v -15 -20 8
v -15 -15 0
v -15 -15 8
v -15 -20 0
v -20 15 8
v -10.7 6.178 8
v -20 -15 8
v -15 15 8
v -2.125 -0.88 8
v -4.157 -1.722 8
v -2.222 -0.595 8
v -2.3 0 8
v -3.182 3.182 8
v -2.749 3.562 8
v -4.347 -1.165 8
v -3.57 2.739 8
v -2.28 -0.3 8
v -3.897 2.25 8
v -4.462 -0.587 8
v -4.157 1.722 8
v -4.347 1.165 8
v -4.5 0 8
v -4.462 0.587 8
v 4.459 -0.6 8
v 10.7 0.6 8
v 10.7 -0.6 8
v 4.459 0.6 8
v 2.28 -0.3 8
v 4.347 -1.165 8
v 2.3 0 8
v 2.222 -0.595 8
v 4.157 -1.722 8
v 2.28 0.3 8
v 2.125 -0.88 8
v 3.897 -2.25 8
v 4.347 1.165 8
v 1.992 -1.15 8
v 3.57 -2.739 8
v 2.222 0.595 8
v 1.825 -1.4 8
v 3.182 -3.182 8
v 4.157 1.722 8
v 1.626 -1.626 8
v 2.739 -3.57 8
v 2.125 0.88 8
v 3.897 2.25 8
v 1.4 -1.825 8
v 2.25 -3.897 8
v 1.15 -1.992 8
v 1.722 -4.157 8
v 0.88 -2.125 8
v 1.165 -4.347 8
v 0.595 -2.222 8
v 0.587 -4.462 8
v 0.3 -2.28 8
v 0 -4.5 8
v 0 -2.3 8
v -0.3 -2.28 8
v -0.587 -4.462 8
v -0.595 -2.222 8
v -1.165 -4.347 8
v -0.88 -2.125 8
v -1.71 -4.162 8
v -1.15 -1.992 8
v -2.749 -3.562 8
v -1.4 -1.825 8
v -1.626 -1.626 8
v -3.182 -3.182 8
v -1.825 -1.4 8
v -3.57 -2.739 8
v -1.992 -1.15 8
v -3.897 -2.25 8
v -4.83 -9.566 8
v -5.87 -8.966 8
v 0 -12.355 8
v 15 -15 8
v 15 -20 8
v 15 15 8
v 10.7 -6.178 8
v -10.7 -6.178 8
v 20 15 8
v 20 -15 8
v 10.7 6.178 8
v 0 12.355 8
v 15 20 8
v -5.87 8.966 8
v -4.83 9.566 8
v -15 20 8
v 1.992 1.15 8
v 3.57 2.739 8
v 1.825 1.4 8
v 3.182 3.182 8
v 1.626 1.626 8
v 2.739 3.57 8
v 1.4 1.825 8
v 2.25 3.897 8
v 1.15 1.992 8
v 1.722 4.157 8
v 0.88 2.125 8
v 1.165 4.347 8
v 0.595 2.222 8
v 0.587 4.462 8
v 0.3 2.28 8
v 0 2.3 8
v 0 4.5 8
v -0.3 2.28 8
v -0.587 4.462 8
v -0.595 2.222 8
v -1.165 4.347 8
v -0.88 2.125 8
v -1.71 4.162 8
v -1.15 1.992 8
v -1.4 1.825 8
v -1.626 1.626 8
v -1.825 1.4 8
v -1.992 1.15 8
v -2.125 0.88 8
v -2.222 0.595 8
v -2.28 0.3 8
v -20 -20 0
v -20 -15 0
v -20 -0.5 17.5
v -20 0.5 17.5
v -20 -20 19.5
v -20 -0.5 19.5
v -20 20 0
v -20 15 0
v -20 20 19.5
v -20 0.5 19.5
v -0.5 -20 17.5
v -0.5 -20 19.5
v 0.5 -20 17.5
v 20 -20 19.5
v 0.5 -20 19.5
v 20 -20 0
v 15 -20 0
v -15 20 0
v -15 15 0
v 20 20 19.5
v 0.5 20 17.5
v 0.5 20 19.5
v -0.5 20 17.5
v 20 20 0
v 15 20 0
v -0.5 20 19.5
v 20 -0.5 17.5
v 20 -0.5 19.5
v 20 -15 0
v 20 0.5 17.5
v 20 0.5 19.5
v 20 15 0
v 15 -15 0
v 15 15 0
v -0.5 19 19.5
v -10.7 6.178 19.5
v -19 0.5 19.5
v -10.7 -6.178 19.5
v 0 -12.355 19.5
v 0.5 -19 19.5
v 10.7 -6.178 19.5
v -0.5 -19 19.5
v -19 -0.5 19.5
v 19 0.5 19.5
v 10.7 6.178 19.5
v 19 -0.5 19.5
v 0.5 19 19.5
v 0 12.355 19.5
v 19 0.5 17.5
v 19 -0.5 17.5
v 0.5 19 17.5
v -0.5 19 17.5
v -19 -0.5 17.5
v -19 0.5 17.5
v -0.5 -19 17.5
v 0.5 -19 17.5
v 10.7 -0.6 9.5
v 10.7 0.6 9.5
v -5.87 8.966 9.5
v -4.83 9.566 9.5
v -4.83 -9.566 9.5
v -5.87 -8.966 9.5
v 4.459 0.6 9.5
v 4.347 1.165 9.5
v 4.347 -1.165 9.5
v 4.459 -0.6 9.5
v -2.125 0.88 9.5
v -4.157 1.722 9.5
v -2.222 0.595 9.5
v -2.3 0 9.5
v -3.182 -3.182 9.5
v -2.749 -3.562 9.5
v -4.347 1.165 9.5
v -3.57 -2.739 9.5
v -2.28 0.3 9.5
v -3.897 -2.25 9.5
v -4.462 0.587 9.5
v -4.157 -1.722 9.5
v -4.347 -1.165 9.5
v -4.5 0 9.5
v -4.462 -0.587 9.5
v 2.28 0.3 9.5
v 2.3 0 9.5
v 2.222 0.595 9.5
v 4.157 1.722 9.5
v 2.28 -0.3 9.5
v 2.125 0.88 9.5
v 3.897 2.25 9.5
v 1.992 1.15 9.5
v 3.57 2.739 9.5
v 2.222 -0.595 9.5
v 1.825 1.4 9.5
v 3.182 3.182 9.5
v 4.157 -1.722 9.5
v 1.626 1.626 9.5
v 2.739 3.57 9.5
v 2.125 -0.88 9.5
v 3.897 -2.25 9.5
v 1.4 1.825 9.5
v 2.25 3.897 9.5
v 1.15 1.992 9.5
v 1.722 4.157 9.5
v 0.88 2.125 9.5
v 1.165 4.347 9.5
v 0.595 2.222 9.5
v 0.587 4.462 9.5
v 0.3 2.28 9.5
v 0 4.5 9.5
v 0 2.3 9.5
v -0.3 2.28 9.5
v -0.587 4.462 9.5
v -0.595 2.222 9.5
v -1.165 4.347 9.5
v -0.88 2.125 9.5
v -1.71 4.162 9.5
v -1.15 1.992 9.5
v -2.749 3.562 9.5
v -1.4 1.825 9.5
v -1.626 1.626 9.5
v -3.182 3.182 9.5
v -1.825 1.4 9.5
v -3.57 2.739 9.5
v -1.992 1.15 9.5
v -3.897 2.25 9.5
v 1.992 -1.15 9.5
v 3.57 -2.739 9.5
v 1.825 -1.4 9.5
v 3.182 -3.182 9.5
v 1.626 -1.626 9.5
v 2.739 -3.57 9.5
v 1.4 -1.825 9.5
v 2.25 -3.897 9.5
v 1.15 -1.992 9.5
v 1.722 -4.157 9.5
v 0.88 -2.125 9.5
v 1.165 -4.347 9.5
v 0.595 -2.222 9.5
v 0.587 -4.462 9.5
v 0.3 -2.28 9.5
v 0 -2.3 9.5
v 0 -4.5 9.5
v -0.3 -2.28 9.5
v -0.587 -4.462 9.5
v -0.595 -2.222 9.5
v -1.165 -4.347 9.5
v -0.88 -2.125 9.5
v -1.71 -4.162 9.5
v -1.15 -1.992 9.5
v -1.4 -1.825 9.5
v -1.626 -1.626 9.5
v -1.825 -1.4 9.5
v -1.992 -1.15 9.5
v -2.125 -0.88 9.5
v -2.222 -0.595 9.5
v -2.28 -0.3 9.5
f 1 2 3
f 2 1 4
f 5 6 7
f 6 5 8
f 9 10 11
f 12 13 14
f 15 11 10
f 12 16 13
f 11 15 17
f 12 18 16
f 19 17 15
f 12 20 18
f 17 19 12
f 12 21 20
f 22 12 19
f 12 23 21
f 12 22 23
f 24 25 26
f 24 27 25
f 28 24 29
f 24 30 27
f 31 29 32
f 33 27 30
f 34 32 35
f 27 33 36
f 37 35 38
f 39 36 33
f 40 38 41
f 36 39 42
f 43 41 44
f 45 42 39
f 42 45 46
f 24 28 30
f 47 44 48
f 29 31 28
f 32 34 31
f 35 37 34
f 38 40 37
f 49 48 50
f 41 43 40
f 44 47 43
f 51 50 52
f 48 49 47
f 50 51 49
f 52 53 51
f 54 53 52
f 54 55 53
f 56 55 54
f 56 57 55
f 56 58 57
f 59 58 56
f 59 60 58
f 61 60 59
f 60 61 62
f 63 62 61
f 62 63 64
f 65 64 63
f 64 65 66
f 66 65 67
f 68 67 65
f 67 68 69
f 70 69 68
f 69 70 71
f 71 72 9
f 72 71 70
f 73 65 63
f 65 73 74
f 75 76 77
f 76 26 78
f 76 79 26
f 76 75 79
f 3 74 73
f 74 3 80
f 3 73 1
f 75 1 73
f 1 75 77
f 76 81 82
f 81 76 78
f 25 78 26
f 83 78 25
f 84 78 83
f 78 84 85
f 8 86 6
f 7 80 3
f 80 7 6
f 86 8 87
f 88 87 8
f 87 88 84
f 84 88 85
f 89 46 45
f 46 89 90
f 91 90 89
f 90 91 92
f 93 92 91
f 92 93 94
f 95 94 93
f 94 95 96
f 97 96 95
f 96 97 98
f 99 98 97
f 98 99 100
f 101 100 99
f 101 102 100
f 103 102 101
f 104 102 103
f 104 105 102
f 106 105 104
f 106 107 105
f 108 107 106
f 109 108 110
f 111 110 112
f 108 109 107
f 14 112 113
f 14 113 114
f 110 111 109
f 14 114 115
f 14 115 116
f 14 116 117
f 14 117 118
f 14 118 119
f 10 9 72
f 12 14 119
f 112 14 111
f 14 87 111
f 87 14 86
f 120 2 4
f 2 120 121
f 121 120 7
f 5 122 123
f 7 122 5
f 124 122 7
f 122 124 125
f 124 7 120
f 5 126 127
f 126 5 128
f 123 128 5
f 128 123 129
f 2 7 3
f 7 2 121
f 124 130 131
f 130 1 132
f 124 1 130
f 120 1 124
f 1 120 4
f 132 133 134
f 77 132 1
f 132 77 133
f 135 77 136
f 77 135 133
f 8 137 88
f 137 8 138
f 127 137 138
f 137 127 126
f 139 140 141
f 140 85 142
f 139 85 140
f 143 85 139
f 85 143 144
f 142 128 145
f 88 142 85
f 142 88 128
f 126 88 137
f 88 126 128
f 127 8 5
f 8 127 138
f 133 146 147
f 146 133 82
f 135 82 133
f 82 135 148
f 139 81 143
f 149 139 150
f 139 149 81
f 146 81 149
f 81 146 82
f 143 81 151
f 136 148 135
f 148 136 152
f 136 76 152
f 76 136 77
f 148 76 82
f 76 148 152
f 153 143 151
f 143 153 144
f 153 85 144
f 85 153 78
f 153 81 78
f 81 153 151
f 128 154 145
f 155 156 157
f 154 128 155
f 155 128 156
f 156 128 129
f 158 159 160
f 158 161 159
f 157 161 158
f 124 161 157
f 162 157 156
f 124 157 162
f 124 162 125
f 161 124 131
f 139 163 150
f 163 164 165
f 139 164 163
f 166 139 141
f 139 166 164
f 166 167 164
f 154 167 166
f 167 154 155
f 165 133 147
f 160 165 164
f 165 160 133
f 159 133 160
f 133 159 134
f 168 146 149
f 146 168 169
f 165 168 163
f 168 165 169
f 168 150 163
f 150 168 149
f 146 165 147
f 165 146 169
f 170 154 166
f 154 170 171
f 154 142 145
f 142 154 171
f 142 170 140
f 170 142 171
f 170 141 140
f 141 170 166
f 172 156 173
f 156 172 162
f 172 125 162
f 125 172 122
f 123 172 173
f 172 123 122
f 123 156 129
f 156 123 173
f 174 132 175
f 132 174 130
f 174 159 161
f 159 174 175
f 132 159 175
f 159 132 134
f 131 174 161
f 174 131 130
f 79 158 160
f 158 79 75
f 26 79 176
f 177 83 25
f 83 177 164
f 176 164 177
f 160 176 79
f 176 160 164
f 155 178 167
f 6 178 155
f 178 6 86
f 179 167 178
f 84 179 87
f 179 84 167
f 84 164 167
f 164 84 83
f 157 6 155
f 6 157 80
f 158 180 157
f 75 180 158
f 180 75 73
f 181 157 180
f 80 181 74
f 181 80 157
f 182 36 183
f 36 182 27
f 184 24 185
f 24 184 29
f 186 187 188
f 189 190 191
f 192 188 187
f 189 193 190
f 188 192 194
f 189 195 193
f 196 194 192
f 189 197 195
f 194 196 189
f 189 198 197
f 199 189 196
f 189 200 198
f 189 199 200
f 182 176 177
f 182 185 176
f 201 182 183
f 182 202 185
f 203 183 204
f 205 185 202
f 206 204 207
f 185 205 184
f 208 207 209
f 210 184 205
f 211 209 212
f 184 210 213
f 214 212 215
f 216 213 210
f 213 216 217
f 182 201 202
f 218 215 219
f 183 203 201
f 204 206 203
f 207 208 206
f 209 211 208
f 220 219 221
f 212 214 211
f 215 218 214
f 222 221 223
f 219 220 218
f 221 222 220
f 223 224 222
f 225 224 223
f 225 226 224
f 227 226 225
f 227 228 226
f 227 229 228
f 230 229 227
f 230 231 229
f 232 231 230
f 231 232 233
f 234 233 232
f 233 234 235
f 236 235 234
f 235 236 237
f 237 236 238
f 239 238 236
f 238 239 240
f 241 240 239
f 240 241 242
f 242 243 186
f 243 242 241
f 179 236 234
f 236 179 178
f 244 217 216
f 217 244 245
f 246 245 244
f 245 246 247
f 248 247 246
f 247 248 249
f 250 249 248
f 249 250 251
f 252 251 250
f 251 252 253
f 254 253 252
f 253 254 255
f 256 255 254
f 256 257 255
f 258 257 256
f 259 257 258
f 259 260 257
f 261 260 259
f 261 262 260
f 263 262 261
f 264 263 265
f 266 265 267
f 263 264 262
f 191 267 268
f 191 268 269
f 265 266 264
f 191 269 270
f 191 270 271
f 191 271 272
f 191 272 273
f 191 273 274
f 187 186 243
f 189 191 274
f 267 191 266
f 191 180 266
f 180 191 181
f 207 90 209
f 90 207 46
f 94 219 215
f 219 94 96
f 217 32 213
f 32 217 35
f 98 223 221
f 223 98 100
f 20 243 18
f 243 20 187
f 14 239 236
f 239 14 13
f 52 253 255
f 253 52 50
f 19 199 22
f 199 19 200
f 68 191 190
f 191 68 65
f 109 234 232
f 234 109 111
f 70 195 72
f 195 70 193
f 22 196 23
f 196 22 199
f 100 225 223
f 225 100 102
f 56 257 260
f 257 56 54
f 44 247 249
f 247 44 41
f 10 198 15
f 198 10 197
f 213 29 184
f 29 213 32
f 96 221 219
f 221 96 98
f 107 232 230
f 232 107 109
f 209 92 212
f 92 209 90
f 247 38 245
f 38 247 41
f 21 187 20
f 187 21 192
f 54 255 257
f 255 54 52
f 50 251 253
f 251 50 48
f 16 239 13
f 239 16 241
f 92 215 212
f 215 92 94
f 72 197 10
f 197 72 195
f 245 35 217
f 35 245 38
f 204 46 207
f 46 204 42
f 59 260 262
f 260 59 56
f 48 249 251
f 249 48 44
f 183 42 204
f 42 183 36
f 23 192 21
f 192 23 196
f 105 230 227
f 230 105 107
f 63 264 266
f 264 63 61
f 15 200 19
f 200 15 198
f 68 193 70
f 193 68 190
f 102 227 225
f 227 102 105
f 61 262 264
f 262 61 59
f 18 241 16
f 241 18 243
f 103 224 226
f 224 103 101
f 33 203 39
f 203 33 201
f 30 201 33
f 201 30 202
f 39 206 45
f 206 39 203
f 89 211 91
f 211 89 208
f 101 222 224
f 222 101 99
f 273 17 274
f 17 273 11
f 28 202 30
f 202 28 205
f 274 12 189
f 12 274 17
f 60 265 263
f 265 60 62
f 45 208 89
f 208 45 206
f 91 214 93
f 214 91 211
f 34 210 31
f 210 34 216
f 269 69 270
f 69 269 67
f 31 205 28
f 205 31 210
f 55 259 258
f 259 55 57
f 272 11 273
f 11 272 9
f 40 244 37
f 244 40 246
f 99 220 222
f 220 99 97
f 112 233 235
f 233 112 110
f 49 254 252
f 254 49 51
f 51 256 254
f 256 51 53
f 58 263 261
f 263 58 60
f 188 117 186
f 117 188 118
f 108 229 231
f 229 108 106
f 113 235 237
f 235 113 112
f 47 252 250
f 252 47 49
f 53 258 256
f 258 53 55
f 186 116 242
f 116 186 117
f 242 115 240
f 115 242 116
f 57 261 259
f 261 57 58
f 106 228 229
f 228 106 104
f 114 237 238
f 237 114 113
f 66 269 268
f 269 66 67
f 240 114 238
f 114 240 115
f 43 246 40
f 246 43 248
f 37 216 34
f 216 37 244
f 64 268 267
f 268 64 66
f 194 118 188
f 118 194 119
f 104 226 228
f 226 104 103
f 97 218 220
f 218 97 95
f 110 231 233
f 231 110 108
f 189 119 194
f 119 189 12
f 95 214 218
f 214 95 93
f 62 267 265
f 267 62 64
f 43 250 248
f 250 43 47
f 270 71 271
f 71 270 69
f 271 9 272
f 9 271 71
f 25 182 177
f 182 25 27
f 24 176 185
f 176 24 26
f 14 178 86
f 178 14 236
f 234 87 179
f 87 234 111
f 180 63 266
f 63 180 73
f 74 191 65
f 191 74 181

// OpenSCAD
// file: common.scad
// Hexboard overlay — shared dimensions and part modules.
// All values hardcoded in mm. z = 0 is the iPad glass. Hexes are pointy-top (a vertex points along +Y),
// matching the app's key grid (app/js/geometry.js).

$fn = 48;

// ---------- grid ----------
PITCH   = 24.15;                 // key centre-to-centre
ROW     = PITCH * sqrt(3) / 2;   // 20.914 between rows

// ---------- cap (translucent PETG) ----------
CAP_FLAT   = 21.0;   // outer flat-to-flat
CAP_H      = 9.0;
CAP_WALL   = 1.2;
CAP_TOP    = 1.6;    // top thickness
CAP_HOLE   = 4.3;    // stem through-hole
CB_D       = 8.4;    // counterbore for plunger head
CB_DEPTH   = 1.2;

// ---------- plunger (conductive PLA) ----------
HEAD_D     = 8.0;
HEAD_H     = 1.2;
STEM_D     = 4.0;
STEM_L     = 14.3;   // below the head

// ---------- tip cup (conductive PLA) + conductive foam ----------
CUP_D      = 7.5;
CUP_H      = 4.5;
SOCKET_D   = 4.05;   // press fit on the stem
SOCKET_DEPTH = 2.0;
POCKET_D   = 6.2;    // holds a 6 mm conductive foam disc
POCKET_DEPTH = 2.0;
FOAM_PROTRUDE = 1.5; // foam below the cup (foam disc 6 x 3.5 mm)

// ---------- vertical stack (rest position) ----------
REST_GAP     = 2.0;                                  // foam to glass at rest
CUP_TOP_Z    = REST_GAP + FOAM_PROTRUDE + CUP_H;     // 8.0: cup stops under the spider
SPIDER_Z     = CUP_TOP_Z;                            // spider bottom = plate bottom
SPIDER_T     = 1.5;
TRAVEL_STOP  = 3.0;                                  // cap bottom to spider at rest
CAP_BOTTOM_Z = SPIDER_Z + SPIDER_T + TRAVEL_STOP;    // 12.5
CAP_TOP_Z    = CAP_BOTTOM_Z + CAP_H;                 // 21.5
PLATE_TOP_Z  = CAP_TOP_Z - 2.0;                      // 19.5: caps stand 2 mm proud
// Pressed to the stop: foam is 1 mm into the glass (compressed), which is the pressure range.

// ---------- bore + spider (part of each housing) ----------
BORE_FLAT    = 21.4;  // 0.2 mm clearance per side
SPIDER_RING_ID = 4.6; // stem slides through
SPIDER_RING_OD = 9.0; // spring seat (spring: 0.5 mm wire, 7 mm OD, ~15 mm free length)
SPOKE_W      = 1.2;

// ---------- iPad Air 4 (A2316) ----------
IPAD_W   = 247.6;
IPAD_H   = 178.5;
IPAD_T   = 6.1;
IPAD_R   = 18.0;     // corner radius (approximate: measure yours)
SCREEN_W = 227.06;   // 2360 px / 264 ppi
SCREEN_H = 157.79;   // 1640 px / 264 ppi
STRIP    = 18.0;     // uncovered control strip along the top edge of the screen
// Key grid centre relative to screen centre (y up): matches app geometry.
GRID_Y   = -(SCREEN_H + STRIP) / 2 + SCREEN_H / 2;   // -9.0

// ---------- helpers ----------
module hex(flat, h) { rotate([0, 0, 30]) cylinder(r = flat / sqrt(3), h = h, $fn = 6); }

// Key centres for the 51-key grid: 6 rows of 9 / 8 keys, row 0 nearest the player.
function key_q(r, j) = (r % 2 == 1) ? j - 3.5 : j - 4;
function key_pos(r, j) = [key_q(r, j) * PITCH, GRID_Y + (r - 2.5) * ROW];

// ---------- parts ----------
// Cap: hollow hex, open at the bottom. Print top-down (top face on the bed).
module cap() {
  difference() {
    hex(CAP_FLAT, CAP_H);
    translate([0, 0, -0.01]) hex(CAP_FLAT - 2 * CAP_WALL, CAP_H - CAP_TOP);
    translate([0, 0, -1]) cylinder(d = CAP_HOLE, h = CAP_H + 2);
    translate([0, 0, CAP_H - CB_DEPTH]) cylinder(d = CB_D, h = CB_DEPTH + 1);
    // soft top edge
    translate([0, 0, CAP_H - 0.8])
      difference() { hex(CAP_FLAT + 2, 2); hex_chamfer(); }
  }
}
module hex_chamfer() {
  rotate([0, 0, 30]) cylinder(r1 = CAP_FLAT / sqrt(3), r2 = (CAP_FLAT - 1.6) / sqrt(3), h = 0.8, $fn = 6);
}

// Plunger: head sits flush in the cap's counterbore; stem runs down through the spider.
// Print head-down.
module plunger() {
  cylinder(d = HEAD_D, h = HEAD_H);
  cylinder(d = STEM_D, h = HEAD_H + STEM_L);
}

// Tip cup: socket on top (stem), pocket underneath (foam). Print socket-up.
module tip_cup() {
  difference() {
    cylinder(d = CUP_D, h = CUP_H);
    translate([0, 0, -0.01]) cylinder(d = POCKET_D, h = POCKET_DEPTH);
    translate([0, 0, CUP_H - SOCKET_DEPTH]) cylinder(d = SOCKET_D, h = SOCKET_DEPTH + 1);
  }
}

// Spider: three spokes from the bore wall to the spring-seat ring. Positioned at z = SPIDER_Z.
module spider() {
  translate([0, 0, SPIDER_Z]) {
    difference() {
      cylinder(d = SPIDER_RING_OD, h = SPIDER_T);
      translate([0, 0, -1]) cylinder(d = SPIDER_RING_ID, h = SPIDER_T + 2);
    }
    for (a = [0, 120, 240]) rotate([0, 0, a])   // toward the bore's flat sides
      translate([SPIDER_RING_OD / 2 - 0.5, -SPOKE_W / 2, 0])
        cube([BORE_FLAT / 2 - SPIDER_RING_OD / 2 + 1.5, SPOKE_W, SPIDER_T]);
  }
}

// Bore cut-out (through the plate), used with difference().
module bore() { translate([0, 0, SPIDER_Z - 1]) hex(BORE_FLAT, PLATE_TOP_Z - SPIDER_Z + 2); }

// Whole key assembly at rest, for previews.
module key_assembly() {
  color([0.6, 0.9, 0.8, 0.6]) translate([0, 0, CAP_BOTTOM_Z]) cap();
  color("dimgray") translate([0, 0, CAP_TOP_Z]) mirror([0, 0, 1]) plunger();
  color("dimgray") translate([0, 0, CUP_TOP_Z - CUP_H]) tip_cup();
  color("black") translate([0, 0, REST_GAP]) cylinder(d = 6, h = FOAM_PROTRUDE + POCKET_DEPTH);
}
// main file
// Single-key test housing (build step 1). Sits directly on the screen on four plastic legs
// (non-conductive, so they don't register as touches). Line the bore up with the hex outline in touch-test/.
// Print upside down (top face on the bed), no supports: the spider spokes bridge.
include <common.scad>

BLOCK = 40;
LEG = 5;

module test_key() {
  difference() {
    union() {
      translate([-BLOCK / 2, -BLOCK / 2, SPIDER_Z]) cube([BLOCK, BLOCK, PLATE_TOP_Z - SPIDER_Z]);
      for (x = [-1, 1], y = [-1, 1])
        translate([x * (BLOCK / 2 - LEG / 2) - LEG / 2, y * (BLOCK / 2 - LEG / 2) - LEG / 2, 0])
          cube([LEG, LEG, SPIDER_Z]);
    }
    bore();
    // alignment notches on the four sides, on the key centre lines
    for (a = [0, 90, 180, 270]) rotate([0, 0, a])
      translate([BLOCK / 2 - 1, -0.5, PLATE_TOP_Z - 2]) cube([2, 1, 3]);
  }
  spider();
}

test_key();
